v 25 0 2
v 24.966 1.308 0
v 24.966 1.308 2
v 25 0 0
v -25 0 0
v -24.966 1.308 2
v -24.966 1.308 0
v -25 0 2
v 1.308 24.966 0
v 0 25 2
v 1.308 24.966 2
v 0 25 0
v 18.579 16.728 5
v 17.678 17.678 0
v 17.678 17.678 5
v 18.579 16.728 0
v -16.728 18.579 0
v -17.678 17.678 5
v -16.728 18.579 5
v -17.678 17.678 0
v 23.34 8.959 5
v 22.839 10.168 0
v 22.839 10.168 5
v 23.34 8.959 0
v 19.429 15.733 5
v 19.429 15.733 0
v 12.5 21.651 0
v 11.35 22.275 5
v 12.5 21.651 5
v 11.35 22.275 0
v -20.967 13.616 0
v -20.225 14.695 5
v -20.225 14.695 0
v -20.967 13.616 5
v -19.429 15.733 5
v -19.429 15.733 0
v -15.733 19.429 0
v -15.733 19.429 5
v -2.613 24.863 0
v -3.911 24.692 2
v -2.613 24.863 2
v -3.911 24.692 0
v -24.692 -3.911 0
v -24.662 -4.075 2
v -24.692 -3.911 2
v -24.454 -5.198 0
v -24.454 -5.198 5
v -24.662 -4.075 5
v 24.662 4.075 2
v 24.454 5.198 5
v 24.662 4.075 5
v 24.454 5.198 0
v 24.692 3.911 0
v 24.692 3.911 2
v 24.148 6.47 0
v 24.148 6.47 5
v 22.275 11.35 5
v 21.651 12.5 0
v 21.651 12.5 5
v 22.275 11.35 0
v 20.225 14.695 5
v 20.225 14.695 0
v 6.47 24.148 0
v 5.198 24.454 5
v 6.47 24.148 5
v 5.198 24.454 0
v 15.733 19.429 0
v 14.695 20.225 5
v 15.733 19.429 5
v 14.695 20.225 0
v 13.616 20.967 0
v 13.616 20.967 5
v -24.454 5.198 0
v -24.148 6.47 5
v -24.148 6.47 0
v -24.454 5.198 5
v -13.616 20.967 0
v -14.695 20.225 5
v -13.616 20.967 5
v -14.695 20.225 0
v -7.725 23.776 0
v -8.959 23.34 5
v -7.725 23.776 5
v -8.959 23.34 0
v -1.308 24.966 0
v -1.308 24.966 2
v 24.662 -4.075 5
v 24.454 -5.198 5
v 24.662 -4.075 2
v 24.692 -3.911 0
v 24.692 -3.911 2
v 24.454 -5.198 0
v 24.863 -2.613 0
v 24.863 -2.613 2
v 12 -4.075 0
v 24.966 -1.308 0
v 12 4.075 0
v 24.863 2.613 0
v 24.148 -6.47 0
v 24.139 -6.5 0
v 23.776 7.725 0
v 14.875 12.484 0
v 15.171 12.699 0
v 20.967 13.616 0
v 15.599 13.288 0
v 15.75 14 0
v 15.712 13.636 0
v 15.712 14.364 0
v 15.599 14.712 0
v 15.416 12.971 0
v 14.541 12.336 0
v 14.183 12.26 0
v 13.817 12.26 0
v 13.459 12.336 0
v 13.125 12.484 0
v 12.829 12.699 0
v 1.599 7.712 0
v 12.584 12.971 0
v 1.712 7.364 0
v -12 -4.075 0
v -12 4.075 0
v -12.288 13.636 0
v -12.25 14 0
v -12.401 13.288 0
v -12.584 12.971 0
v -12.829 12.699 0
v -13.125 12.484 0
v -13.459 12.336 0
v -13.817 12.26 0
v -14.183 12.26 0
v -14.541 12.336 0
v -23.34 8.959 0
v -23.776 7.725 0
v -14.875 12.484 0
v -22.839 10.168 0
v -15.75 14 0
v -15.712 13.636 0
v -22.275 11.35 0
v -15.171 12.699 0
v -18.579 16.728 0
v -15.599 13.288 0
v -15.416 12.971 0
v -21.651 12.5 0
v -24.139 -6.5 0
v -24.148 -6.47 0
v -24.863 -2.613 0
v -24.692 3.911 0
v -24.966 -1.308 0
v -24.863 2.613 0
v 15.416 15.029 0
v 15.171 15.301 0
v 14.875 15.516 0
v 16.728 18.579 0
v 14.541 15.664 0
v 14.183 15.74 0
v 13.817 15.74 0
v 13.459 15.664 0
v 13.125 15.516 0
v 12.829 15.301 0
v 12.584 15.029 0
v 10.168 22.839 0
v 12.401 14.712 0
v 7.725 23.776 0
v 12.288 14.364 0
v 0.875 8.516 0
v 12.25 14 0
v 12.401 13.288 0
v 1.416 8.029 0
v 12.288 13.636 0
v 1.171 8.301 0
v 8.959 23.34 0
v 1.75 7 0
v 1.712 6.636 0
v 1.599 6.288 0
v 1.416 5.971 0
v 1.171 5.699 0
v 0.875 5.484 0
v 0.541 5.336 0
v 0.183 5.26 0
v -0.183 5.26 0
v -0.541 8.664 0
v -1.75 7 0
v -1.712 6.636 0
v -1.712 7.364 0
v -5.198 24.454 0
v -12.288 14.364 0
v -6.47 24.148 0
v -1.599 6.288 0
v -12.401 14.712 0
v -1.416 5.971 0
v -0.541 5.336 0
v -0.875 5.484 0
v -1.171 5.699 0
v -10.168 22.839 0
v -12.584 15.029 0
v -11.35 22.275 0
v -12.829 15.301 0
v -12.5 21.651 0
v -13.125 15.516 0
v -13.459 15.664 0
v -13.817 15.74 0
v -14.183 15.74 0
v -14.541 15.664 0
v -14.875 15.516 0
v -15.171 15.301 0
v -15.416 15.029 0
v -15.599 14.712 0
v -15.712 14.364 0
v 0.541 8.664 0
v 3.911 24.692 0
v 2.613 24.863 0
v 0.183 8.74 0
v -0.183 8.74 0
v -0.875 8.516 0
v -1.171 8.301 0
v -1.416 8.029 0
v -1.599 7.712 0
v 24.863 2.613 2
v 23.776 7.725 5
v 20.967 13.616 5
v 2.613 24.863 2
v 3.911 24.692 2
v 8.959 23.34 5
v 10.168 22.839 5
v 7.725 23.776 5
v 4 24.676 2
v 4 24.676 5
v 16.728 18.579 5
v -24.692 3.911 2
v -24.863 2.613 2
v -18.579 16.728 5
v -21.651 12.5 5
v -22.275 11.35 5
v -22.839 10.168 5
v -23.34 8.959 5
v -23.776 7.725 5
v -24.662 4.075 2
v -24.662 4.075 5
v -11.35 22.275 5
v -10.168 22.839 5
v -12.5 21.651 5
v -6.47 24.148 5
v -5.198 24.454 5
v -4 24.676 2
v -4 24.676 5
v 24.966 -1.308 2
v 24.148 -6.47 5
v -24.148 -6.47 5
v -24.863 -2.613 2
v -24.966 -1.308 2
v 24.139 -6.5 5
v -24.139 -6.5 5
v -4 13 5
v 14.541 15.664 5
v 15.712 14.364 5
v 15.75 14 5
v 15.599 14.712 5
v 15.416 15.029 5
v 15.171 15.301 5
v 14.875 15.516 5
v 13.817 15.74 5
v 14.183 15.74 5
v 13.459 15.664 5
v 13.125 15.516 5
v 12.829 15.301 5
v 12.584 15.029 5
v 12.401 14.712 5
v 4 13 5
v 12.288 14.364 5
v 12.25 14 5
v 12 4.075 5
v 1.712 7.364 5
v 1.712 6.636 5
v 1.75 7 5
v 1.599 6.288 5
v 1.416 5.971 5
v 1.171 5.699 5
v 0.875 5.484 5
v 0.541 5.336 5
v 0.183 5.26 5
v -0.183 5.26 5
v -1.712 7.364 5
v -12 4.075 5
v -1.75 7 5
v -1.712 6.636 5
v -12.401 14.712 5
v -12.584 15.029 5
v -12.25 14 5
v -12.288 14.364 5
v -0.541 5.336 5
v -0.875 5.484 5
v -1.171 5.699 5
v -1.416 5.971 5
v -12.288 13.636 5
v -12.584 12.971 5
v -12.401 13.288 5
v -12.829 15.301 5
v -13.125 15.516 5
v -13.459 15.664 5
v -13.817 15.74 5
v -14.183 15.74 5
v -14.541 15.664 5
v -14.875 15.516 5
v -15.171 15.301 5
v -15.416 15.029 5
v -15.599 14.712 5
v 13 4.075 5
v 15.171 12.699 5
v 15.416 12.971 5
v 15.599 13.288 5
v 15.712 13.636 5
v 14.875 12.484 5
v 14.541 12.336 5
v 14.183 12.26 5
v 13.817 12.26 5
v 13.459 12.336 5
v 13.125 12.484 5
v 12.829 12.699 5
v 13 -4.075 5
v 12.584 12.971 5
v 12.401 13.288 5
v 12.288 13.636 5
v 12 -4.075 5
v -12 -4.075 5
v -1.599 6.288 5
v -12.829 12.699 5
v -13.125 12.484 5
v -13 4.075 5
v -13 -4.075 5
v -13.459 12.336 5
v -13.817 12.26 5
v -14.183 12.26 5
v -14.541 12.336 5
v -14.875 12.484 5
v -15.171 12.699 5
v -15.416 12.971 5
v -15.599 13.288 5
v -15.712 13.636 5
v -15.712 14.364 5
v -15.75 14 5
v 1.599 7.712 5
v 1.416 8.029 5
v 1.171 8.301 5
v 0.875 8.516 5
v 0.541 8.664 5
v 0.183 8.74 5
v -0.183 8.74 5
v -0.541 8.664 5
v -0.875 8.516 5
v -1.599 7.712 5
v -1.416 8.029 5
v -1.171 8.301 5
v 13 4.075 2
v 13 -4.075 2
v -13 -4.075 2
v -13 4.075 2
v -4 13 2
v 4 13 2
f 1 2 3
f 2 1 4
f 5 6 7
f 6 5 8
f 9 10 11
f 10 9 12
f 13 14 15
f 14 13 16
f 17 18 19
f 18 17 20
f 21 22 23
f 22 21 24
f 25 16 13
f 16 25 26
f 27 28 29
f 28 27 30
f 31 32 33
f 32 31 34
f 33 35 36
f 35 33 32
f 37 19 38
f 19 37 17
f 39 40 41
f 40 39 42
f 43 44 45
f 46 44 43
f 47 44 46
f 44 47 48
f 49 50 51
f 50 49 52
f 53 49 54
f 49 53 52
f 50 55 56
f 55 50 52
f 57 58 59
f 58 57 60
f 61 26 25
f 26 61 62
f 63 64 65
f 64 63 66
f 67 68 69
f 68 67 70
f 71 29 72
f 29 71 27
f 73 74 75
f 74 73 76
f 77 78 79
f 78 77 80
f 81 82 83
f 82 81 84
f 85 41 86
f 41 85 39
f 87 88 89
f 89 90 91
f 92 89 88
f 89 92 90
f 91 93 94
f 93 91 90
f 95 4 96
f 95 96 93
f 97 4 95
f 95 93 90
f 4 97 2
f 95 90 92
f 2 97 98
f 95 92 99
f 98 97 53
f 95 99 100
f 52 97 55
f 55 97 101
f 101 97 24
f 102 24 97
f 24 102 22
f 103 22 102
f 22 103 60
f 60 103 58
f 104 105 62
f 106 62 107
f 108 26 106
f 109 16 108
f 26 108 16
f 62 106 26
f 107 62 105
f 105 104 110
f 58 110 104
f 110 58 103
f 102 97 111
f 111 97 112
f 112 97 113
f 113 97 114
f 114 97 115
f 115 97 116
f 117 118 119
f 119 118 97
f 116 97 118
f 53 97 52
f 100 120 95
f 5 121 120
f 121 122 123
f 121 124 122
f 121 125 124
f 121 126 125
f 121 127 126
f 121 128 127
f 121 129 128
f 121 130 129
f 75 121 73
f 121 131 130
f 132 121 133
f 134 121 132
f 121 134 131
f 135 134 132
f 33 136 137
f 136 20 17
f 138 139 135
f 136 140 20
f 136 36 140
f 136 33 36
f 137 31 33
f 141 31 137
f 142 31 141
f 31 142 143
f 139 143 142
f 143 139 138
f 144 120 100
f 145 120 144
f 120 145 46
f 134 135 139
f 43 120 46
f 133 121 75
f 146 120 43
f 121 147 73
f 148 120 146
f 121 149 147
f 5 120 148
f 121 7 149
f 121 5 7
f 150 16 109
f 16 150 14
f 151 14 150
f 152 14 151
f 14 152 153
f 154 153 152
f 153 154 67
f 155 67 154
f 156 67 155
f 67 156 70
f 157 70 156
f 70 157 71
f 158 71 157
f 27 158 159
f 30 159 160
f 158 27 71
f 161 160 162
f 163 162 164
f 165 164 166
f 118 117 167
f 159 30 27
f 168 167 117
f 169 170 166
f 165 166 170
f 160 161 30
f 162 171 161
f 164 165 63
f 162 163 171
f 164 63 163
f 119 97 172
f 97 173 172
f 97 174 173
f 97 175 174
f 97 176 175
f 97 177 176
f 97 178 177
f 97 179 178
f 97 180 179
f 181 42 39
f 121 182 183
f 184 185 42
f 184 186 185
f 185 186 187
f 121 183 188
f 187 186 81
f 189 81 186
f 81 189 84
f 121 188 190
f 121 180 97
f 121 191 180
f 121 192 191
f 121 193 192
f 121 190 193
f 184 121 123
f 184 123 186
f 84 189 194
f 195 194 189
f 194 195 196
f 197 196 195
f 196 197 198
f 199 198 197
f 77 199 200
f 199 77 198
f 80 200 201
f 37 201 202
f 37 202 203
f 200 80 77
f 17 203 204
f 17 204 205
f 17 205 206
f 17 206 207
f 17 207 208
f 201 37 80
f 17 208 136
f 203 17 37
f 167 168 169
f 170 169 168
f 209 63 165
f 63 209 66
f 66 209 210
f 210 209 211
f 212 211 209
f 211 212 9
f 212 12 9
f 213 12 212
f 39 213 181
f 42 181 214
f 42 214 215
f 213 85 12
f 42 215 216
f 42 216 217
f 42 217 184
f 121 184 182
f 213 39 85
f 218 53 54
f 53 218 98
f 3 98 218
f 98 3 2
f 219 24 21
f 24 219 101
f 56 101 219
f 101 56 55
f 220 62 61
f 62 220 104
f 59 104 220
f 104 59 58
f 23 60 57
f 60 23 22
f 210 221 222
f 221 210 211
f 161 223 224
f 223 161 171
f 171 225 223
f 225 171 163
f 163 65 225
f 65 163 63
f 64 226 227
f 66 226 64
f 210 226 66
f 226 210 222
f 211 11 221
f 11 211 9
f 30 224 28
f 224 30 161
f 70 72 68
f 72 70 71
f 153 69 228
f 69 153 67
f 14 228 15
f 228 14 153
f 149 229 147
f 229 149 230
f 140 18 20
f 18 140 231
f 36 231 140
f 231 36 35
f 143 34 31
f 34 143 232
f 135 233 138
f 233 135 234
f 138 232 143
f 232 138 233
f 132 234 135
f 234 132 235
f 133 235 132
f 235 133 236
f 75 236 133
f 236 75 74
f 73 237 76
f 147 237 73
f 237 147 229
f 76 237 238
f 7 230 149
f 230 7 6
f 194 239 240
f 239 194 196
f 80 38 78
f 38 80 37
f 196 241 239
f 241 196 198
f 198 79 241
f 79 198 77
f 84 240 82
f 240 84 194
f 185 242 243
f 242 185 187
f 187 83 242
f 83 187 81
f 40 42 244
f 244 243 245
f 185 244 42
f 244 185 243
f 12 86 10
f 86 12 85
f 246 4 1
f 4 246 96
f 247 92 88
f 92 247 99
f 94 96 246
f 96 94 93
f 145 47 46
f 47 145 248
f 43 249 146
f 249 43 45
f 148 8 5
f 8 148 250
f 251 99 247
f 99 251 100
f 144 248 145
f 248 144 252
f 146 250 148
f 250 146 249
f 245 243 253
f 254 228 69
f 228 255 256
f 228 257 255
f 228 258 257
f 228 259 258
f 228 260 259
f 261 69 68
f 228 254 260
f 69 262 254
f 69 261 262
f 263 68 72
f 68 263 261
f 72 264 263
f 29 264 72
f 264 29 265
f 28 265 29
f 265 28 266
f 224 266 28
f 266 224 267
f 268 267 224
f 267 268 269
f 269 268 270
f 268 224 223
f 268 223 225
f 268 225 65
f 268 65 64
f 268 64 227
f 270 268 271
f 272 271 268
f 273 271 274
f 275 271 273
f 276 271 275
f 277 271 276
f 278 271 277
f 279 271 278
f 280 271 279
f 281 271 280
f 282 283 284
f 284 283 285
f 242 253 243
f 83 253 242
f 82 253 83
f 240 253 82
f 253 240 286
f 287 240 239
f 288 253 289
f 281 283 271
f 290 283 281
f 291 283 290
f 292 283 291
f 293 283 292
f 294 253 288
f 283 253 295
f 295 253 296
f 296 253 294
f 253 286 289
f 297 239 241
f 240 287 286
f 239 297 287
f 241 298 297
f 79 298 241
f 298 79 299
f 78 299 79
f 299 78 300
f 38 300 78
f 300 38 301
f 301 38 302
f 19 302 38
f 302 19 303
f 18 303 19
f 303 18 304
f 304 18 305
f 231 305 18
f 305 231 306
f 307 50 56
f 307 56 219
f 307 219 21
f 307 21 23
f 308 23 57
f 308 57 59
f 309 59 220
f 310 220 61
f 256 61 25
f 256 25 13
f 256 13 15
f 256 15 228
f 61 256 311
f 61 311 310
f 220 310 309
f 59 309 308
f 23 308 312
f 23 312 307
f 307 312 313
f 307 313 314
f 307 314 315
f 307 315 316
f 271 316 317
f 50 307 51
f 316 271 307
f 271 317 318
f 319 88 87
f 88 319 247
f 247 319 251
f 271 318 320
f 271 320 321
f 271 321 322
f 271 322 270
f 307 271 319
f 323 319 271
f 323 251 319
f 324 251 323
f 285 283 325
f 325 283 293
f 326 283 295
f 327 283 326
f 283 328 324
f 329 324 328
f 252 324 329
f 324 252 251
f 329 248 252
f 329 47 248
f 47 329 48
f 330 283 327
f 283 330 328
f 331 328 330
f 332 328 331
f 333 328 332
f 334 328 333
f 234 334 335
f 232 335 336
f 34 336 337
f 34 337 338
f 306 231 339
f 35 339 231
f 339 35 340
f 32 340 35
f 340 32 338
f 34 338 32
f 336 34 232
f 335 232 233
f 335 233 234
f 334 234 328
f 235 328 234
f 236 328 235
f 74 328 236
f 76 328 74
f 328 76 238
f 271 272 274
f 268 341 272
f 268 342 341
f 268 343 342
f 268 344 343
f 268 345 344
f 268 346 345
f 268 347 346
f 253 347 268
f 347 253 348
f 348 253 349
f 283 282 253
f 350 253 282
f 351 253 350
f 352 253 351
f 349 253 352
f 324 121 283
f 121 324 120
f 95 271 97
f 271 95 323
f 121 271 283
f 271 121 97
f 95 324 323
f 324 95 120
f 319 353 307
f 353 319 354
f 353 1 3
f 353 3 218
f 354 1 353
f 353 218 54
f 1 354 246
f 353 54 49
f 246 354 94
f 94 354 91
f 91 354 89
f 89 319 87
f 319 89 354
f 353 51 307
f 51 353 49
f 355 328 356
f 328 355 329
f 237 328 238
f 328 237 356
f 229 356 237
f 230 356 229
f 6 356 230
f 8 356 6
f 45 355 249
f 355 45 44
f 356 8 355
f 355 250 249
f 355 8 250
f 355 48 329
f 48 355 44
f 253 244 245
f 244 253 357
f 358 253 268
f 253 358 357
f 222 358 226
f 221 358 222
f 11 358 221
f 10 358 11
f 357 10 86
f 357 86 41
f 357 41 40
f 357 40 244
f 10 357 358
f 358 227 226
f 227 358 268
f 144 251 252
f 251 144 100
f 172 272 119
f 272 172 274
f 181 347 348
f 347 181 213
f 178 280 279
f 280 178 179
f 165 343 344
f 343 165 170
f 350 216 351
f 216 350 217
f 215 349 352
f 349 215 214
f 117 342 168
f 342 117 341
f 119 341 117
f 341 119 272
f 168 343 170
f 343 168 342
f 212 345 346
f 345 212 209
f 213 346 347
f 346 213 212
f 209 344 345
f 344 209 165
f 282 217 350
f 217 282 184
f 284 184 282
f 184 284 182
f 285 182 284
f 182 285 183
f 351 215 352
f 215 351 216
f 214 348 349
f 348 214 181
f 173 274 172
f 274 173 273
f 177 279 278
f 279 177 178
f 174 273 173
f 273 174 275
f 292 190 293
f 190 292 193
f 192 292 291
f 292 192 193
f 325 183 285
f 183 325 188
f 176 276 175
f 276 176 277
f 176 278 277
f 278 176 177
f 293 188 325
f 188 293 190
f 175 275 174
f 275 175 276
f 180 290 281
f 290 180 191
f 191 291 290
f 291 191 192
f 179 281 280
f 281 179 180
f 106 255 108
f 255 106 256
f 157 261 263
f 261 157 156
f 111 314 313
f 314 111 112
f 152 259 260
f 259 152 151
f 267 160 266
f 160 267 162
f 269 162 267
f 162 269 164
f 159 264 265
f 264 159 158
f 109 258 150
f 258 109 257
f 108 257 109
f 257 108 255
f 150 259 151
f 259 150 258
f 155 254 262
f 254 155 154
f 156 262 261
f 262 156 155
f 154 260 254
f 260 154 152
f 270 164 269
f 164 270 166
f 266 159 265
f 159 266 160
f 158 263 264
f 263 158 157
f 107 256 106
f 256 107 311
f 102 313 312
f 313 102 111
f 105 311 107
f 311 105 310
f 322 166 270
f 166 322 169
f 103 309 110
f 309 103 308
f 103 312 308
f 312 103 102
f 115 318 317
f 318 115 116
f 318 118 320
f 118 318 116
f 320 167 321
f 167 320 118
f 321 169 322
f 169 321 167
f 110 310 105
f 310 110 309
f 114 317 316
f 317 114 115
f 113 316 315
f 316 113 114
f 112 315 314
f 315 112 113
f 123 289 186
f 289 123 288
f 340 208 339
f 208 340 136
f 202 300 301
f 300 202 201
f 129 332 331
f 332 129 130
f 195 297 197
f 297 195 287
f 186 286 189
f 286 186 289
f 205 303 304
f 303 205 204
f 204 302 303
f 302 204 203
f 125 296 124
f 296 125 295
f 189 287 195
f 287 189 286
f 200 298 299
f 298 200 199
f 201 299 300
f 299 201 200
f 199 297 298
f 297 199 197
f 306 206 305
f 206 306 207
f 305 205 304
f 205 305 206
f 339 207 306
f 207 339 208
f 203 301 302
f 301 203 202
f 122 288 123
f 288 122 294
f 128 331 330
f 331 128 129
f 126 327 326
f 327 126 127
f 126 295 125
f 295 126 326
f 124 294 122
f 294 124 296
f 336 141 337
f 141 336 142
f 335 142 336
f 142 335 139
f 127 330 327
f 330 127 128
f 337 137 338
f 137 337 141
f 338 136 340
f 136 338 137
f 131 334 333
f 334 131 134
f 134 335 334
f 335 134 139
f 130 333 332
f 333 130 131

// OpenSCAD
difference(){
cylinder(d=50,h=5,$fn=120);
cube([24,8.15,12],center=true);
translate([25,0,8])cube([24,8.15,12],center=true);
translate([-25,0,8])cube([24,8.15,12],center=true);
rotate([0,0,90])translate([25,0,8])
cube([24,8,12],center=true);
//rotate([0,0,-60])translate([-25,0,8])
//cube([24,8,12],center=true);
translate([0,-30.5,0])cube([54,48,12],center=true);
translate([0,7,-1])cylinder(d=3.5,h=10,$fn=30);
translate([14,14,-1])cylinder(d=3.5,h=10,$fn=30);
translate([-14,14,-1])cylinder(d=3.5,h=10,$fn=30);
}
